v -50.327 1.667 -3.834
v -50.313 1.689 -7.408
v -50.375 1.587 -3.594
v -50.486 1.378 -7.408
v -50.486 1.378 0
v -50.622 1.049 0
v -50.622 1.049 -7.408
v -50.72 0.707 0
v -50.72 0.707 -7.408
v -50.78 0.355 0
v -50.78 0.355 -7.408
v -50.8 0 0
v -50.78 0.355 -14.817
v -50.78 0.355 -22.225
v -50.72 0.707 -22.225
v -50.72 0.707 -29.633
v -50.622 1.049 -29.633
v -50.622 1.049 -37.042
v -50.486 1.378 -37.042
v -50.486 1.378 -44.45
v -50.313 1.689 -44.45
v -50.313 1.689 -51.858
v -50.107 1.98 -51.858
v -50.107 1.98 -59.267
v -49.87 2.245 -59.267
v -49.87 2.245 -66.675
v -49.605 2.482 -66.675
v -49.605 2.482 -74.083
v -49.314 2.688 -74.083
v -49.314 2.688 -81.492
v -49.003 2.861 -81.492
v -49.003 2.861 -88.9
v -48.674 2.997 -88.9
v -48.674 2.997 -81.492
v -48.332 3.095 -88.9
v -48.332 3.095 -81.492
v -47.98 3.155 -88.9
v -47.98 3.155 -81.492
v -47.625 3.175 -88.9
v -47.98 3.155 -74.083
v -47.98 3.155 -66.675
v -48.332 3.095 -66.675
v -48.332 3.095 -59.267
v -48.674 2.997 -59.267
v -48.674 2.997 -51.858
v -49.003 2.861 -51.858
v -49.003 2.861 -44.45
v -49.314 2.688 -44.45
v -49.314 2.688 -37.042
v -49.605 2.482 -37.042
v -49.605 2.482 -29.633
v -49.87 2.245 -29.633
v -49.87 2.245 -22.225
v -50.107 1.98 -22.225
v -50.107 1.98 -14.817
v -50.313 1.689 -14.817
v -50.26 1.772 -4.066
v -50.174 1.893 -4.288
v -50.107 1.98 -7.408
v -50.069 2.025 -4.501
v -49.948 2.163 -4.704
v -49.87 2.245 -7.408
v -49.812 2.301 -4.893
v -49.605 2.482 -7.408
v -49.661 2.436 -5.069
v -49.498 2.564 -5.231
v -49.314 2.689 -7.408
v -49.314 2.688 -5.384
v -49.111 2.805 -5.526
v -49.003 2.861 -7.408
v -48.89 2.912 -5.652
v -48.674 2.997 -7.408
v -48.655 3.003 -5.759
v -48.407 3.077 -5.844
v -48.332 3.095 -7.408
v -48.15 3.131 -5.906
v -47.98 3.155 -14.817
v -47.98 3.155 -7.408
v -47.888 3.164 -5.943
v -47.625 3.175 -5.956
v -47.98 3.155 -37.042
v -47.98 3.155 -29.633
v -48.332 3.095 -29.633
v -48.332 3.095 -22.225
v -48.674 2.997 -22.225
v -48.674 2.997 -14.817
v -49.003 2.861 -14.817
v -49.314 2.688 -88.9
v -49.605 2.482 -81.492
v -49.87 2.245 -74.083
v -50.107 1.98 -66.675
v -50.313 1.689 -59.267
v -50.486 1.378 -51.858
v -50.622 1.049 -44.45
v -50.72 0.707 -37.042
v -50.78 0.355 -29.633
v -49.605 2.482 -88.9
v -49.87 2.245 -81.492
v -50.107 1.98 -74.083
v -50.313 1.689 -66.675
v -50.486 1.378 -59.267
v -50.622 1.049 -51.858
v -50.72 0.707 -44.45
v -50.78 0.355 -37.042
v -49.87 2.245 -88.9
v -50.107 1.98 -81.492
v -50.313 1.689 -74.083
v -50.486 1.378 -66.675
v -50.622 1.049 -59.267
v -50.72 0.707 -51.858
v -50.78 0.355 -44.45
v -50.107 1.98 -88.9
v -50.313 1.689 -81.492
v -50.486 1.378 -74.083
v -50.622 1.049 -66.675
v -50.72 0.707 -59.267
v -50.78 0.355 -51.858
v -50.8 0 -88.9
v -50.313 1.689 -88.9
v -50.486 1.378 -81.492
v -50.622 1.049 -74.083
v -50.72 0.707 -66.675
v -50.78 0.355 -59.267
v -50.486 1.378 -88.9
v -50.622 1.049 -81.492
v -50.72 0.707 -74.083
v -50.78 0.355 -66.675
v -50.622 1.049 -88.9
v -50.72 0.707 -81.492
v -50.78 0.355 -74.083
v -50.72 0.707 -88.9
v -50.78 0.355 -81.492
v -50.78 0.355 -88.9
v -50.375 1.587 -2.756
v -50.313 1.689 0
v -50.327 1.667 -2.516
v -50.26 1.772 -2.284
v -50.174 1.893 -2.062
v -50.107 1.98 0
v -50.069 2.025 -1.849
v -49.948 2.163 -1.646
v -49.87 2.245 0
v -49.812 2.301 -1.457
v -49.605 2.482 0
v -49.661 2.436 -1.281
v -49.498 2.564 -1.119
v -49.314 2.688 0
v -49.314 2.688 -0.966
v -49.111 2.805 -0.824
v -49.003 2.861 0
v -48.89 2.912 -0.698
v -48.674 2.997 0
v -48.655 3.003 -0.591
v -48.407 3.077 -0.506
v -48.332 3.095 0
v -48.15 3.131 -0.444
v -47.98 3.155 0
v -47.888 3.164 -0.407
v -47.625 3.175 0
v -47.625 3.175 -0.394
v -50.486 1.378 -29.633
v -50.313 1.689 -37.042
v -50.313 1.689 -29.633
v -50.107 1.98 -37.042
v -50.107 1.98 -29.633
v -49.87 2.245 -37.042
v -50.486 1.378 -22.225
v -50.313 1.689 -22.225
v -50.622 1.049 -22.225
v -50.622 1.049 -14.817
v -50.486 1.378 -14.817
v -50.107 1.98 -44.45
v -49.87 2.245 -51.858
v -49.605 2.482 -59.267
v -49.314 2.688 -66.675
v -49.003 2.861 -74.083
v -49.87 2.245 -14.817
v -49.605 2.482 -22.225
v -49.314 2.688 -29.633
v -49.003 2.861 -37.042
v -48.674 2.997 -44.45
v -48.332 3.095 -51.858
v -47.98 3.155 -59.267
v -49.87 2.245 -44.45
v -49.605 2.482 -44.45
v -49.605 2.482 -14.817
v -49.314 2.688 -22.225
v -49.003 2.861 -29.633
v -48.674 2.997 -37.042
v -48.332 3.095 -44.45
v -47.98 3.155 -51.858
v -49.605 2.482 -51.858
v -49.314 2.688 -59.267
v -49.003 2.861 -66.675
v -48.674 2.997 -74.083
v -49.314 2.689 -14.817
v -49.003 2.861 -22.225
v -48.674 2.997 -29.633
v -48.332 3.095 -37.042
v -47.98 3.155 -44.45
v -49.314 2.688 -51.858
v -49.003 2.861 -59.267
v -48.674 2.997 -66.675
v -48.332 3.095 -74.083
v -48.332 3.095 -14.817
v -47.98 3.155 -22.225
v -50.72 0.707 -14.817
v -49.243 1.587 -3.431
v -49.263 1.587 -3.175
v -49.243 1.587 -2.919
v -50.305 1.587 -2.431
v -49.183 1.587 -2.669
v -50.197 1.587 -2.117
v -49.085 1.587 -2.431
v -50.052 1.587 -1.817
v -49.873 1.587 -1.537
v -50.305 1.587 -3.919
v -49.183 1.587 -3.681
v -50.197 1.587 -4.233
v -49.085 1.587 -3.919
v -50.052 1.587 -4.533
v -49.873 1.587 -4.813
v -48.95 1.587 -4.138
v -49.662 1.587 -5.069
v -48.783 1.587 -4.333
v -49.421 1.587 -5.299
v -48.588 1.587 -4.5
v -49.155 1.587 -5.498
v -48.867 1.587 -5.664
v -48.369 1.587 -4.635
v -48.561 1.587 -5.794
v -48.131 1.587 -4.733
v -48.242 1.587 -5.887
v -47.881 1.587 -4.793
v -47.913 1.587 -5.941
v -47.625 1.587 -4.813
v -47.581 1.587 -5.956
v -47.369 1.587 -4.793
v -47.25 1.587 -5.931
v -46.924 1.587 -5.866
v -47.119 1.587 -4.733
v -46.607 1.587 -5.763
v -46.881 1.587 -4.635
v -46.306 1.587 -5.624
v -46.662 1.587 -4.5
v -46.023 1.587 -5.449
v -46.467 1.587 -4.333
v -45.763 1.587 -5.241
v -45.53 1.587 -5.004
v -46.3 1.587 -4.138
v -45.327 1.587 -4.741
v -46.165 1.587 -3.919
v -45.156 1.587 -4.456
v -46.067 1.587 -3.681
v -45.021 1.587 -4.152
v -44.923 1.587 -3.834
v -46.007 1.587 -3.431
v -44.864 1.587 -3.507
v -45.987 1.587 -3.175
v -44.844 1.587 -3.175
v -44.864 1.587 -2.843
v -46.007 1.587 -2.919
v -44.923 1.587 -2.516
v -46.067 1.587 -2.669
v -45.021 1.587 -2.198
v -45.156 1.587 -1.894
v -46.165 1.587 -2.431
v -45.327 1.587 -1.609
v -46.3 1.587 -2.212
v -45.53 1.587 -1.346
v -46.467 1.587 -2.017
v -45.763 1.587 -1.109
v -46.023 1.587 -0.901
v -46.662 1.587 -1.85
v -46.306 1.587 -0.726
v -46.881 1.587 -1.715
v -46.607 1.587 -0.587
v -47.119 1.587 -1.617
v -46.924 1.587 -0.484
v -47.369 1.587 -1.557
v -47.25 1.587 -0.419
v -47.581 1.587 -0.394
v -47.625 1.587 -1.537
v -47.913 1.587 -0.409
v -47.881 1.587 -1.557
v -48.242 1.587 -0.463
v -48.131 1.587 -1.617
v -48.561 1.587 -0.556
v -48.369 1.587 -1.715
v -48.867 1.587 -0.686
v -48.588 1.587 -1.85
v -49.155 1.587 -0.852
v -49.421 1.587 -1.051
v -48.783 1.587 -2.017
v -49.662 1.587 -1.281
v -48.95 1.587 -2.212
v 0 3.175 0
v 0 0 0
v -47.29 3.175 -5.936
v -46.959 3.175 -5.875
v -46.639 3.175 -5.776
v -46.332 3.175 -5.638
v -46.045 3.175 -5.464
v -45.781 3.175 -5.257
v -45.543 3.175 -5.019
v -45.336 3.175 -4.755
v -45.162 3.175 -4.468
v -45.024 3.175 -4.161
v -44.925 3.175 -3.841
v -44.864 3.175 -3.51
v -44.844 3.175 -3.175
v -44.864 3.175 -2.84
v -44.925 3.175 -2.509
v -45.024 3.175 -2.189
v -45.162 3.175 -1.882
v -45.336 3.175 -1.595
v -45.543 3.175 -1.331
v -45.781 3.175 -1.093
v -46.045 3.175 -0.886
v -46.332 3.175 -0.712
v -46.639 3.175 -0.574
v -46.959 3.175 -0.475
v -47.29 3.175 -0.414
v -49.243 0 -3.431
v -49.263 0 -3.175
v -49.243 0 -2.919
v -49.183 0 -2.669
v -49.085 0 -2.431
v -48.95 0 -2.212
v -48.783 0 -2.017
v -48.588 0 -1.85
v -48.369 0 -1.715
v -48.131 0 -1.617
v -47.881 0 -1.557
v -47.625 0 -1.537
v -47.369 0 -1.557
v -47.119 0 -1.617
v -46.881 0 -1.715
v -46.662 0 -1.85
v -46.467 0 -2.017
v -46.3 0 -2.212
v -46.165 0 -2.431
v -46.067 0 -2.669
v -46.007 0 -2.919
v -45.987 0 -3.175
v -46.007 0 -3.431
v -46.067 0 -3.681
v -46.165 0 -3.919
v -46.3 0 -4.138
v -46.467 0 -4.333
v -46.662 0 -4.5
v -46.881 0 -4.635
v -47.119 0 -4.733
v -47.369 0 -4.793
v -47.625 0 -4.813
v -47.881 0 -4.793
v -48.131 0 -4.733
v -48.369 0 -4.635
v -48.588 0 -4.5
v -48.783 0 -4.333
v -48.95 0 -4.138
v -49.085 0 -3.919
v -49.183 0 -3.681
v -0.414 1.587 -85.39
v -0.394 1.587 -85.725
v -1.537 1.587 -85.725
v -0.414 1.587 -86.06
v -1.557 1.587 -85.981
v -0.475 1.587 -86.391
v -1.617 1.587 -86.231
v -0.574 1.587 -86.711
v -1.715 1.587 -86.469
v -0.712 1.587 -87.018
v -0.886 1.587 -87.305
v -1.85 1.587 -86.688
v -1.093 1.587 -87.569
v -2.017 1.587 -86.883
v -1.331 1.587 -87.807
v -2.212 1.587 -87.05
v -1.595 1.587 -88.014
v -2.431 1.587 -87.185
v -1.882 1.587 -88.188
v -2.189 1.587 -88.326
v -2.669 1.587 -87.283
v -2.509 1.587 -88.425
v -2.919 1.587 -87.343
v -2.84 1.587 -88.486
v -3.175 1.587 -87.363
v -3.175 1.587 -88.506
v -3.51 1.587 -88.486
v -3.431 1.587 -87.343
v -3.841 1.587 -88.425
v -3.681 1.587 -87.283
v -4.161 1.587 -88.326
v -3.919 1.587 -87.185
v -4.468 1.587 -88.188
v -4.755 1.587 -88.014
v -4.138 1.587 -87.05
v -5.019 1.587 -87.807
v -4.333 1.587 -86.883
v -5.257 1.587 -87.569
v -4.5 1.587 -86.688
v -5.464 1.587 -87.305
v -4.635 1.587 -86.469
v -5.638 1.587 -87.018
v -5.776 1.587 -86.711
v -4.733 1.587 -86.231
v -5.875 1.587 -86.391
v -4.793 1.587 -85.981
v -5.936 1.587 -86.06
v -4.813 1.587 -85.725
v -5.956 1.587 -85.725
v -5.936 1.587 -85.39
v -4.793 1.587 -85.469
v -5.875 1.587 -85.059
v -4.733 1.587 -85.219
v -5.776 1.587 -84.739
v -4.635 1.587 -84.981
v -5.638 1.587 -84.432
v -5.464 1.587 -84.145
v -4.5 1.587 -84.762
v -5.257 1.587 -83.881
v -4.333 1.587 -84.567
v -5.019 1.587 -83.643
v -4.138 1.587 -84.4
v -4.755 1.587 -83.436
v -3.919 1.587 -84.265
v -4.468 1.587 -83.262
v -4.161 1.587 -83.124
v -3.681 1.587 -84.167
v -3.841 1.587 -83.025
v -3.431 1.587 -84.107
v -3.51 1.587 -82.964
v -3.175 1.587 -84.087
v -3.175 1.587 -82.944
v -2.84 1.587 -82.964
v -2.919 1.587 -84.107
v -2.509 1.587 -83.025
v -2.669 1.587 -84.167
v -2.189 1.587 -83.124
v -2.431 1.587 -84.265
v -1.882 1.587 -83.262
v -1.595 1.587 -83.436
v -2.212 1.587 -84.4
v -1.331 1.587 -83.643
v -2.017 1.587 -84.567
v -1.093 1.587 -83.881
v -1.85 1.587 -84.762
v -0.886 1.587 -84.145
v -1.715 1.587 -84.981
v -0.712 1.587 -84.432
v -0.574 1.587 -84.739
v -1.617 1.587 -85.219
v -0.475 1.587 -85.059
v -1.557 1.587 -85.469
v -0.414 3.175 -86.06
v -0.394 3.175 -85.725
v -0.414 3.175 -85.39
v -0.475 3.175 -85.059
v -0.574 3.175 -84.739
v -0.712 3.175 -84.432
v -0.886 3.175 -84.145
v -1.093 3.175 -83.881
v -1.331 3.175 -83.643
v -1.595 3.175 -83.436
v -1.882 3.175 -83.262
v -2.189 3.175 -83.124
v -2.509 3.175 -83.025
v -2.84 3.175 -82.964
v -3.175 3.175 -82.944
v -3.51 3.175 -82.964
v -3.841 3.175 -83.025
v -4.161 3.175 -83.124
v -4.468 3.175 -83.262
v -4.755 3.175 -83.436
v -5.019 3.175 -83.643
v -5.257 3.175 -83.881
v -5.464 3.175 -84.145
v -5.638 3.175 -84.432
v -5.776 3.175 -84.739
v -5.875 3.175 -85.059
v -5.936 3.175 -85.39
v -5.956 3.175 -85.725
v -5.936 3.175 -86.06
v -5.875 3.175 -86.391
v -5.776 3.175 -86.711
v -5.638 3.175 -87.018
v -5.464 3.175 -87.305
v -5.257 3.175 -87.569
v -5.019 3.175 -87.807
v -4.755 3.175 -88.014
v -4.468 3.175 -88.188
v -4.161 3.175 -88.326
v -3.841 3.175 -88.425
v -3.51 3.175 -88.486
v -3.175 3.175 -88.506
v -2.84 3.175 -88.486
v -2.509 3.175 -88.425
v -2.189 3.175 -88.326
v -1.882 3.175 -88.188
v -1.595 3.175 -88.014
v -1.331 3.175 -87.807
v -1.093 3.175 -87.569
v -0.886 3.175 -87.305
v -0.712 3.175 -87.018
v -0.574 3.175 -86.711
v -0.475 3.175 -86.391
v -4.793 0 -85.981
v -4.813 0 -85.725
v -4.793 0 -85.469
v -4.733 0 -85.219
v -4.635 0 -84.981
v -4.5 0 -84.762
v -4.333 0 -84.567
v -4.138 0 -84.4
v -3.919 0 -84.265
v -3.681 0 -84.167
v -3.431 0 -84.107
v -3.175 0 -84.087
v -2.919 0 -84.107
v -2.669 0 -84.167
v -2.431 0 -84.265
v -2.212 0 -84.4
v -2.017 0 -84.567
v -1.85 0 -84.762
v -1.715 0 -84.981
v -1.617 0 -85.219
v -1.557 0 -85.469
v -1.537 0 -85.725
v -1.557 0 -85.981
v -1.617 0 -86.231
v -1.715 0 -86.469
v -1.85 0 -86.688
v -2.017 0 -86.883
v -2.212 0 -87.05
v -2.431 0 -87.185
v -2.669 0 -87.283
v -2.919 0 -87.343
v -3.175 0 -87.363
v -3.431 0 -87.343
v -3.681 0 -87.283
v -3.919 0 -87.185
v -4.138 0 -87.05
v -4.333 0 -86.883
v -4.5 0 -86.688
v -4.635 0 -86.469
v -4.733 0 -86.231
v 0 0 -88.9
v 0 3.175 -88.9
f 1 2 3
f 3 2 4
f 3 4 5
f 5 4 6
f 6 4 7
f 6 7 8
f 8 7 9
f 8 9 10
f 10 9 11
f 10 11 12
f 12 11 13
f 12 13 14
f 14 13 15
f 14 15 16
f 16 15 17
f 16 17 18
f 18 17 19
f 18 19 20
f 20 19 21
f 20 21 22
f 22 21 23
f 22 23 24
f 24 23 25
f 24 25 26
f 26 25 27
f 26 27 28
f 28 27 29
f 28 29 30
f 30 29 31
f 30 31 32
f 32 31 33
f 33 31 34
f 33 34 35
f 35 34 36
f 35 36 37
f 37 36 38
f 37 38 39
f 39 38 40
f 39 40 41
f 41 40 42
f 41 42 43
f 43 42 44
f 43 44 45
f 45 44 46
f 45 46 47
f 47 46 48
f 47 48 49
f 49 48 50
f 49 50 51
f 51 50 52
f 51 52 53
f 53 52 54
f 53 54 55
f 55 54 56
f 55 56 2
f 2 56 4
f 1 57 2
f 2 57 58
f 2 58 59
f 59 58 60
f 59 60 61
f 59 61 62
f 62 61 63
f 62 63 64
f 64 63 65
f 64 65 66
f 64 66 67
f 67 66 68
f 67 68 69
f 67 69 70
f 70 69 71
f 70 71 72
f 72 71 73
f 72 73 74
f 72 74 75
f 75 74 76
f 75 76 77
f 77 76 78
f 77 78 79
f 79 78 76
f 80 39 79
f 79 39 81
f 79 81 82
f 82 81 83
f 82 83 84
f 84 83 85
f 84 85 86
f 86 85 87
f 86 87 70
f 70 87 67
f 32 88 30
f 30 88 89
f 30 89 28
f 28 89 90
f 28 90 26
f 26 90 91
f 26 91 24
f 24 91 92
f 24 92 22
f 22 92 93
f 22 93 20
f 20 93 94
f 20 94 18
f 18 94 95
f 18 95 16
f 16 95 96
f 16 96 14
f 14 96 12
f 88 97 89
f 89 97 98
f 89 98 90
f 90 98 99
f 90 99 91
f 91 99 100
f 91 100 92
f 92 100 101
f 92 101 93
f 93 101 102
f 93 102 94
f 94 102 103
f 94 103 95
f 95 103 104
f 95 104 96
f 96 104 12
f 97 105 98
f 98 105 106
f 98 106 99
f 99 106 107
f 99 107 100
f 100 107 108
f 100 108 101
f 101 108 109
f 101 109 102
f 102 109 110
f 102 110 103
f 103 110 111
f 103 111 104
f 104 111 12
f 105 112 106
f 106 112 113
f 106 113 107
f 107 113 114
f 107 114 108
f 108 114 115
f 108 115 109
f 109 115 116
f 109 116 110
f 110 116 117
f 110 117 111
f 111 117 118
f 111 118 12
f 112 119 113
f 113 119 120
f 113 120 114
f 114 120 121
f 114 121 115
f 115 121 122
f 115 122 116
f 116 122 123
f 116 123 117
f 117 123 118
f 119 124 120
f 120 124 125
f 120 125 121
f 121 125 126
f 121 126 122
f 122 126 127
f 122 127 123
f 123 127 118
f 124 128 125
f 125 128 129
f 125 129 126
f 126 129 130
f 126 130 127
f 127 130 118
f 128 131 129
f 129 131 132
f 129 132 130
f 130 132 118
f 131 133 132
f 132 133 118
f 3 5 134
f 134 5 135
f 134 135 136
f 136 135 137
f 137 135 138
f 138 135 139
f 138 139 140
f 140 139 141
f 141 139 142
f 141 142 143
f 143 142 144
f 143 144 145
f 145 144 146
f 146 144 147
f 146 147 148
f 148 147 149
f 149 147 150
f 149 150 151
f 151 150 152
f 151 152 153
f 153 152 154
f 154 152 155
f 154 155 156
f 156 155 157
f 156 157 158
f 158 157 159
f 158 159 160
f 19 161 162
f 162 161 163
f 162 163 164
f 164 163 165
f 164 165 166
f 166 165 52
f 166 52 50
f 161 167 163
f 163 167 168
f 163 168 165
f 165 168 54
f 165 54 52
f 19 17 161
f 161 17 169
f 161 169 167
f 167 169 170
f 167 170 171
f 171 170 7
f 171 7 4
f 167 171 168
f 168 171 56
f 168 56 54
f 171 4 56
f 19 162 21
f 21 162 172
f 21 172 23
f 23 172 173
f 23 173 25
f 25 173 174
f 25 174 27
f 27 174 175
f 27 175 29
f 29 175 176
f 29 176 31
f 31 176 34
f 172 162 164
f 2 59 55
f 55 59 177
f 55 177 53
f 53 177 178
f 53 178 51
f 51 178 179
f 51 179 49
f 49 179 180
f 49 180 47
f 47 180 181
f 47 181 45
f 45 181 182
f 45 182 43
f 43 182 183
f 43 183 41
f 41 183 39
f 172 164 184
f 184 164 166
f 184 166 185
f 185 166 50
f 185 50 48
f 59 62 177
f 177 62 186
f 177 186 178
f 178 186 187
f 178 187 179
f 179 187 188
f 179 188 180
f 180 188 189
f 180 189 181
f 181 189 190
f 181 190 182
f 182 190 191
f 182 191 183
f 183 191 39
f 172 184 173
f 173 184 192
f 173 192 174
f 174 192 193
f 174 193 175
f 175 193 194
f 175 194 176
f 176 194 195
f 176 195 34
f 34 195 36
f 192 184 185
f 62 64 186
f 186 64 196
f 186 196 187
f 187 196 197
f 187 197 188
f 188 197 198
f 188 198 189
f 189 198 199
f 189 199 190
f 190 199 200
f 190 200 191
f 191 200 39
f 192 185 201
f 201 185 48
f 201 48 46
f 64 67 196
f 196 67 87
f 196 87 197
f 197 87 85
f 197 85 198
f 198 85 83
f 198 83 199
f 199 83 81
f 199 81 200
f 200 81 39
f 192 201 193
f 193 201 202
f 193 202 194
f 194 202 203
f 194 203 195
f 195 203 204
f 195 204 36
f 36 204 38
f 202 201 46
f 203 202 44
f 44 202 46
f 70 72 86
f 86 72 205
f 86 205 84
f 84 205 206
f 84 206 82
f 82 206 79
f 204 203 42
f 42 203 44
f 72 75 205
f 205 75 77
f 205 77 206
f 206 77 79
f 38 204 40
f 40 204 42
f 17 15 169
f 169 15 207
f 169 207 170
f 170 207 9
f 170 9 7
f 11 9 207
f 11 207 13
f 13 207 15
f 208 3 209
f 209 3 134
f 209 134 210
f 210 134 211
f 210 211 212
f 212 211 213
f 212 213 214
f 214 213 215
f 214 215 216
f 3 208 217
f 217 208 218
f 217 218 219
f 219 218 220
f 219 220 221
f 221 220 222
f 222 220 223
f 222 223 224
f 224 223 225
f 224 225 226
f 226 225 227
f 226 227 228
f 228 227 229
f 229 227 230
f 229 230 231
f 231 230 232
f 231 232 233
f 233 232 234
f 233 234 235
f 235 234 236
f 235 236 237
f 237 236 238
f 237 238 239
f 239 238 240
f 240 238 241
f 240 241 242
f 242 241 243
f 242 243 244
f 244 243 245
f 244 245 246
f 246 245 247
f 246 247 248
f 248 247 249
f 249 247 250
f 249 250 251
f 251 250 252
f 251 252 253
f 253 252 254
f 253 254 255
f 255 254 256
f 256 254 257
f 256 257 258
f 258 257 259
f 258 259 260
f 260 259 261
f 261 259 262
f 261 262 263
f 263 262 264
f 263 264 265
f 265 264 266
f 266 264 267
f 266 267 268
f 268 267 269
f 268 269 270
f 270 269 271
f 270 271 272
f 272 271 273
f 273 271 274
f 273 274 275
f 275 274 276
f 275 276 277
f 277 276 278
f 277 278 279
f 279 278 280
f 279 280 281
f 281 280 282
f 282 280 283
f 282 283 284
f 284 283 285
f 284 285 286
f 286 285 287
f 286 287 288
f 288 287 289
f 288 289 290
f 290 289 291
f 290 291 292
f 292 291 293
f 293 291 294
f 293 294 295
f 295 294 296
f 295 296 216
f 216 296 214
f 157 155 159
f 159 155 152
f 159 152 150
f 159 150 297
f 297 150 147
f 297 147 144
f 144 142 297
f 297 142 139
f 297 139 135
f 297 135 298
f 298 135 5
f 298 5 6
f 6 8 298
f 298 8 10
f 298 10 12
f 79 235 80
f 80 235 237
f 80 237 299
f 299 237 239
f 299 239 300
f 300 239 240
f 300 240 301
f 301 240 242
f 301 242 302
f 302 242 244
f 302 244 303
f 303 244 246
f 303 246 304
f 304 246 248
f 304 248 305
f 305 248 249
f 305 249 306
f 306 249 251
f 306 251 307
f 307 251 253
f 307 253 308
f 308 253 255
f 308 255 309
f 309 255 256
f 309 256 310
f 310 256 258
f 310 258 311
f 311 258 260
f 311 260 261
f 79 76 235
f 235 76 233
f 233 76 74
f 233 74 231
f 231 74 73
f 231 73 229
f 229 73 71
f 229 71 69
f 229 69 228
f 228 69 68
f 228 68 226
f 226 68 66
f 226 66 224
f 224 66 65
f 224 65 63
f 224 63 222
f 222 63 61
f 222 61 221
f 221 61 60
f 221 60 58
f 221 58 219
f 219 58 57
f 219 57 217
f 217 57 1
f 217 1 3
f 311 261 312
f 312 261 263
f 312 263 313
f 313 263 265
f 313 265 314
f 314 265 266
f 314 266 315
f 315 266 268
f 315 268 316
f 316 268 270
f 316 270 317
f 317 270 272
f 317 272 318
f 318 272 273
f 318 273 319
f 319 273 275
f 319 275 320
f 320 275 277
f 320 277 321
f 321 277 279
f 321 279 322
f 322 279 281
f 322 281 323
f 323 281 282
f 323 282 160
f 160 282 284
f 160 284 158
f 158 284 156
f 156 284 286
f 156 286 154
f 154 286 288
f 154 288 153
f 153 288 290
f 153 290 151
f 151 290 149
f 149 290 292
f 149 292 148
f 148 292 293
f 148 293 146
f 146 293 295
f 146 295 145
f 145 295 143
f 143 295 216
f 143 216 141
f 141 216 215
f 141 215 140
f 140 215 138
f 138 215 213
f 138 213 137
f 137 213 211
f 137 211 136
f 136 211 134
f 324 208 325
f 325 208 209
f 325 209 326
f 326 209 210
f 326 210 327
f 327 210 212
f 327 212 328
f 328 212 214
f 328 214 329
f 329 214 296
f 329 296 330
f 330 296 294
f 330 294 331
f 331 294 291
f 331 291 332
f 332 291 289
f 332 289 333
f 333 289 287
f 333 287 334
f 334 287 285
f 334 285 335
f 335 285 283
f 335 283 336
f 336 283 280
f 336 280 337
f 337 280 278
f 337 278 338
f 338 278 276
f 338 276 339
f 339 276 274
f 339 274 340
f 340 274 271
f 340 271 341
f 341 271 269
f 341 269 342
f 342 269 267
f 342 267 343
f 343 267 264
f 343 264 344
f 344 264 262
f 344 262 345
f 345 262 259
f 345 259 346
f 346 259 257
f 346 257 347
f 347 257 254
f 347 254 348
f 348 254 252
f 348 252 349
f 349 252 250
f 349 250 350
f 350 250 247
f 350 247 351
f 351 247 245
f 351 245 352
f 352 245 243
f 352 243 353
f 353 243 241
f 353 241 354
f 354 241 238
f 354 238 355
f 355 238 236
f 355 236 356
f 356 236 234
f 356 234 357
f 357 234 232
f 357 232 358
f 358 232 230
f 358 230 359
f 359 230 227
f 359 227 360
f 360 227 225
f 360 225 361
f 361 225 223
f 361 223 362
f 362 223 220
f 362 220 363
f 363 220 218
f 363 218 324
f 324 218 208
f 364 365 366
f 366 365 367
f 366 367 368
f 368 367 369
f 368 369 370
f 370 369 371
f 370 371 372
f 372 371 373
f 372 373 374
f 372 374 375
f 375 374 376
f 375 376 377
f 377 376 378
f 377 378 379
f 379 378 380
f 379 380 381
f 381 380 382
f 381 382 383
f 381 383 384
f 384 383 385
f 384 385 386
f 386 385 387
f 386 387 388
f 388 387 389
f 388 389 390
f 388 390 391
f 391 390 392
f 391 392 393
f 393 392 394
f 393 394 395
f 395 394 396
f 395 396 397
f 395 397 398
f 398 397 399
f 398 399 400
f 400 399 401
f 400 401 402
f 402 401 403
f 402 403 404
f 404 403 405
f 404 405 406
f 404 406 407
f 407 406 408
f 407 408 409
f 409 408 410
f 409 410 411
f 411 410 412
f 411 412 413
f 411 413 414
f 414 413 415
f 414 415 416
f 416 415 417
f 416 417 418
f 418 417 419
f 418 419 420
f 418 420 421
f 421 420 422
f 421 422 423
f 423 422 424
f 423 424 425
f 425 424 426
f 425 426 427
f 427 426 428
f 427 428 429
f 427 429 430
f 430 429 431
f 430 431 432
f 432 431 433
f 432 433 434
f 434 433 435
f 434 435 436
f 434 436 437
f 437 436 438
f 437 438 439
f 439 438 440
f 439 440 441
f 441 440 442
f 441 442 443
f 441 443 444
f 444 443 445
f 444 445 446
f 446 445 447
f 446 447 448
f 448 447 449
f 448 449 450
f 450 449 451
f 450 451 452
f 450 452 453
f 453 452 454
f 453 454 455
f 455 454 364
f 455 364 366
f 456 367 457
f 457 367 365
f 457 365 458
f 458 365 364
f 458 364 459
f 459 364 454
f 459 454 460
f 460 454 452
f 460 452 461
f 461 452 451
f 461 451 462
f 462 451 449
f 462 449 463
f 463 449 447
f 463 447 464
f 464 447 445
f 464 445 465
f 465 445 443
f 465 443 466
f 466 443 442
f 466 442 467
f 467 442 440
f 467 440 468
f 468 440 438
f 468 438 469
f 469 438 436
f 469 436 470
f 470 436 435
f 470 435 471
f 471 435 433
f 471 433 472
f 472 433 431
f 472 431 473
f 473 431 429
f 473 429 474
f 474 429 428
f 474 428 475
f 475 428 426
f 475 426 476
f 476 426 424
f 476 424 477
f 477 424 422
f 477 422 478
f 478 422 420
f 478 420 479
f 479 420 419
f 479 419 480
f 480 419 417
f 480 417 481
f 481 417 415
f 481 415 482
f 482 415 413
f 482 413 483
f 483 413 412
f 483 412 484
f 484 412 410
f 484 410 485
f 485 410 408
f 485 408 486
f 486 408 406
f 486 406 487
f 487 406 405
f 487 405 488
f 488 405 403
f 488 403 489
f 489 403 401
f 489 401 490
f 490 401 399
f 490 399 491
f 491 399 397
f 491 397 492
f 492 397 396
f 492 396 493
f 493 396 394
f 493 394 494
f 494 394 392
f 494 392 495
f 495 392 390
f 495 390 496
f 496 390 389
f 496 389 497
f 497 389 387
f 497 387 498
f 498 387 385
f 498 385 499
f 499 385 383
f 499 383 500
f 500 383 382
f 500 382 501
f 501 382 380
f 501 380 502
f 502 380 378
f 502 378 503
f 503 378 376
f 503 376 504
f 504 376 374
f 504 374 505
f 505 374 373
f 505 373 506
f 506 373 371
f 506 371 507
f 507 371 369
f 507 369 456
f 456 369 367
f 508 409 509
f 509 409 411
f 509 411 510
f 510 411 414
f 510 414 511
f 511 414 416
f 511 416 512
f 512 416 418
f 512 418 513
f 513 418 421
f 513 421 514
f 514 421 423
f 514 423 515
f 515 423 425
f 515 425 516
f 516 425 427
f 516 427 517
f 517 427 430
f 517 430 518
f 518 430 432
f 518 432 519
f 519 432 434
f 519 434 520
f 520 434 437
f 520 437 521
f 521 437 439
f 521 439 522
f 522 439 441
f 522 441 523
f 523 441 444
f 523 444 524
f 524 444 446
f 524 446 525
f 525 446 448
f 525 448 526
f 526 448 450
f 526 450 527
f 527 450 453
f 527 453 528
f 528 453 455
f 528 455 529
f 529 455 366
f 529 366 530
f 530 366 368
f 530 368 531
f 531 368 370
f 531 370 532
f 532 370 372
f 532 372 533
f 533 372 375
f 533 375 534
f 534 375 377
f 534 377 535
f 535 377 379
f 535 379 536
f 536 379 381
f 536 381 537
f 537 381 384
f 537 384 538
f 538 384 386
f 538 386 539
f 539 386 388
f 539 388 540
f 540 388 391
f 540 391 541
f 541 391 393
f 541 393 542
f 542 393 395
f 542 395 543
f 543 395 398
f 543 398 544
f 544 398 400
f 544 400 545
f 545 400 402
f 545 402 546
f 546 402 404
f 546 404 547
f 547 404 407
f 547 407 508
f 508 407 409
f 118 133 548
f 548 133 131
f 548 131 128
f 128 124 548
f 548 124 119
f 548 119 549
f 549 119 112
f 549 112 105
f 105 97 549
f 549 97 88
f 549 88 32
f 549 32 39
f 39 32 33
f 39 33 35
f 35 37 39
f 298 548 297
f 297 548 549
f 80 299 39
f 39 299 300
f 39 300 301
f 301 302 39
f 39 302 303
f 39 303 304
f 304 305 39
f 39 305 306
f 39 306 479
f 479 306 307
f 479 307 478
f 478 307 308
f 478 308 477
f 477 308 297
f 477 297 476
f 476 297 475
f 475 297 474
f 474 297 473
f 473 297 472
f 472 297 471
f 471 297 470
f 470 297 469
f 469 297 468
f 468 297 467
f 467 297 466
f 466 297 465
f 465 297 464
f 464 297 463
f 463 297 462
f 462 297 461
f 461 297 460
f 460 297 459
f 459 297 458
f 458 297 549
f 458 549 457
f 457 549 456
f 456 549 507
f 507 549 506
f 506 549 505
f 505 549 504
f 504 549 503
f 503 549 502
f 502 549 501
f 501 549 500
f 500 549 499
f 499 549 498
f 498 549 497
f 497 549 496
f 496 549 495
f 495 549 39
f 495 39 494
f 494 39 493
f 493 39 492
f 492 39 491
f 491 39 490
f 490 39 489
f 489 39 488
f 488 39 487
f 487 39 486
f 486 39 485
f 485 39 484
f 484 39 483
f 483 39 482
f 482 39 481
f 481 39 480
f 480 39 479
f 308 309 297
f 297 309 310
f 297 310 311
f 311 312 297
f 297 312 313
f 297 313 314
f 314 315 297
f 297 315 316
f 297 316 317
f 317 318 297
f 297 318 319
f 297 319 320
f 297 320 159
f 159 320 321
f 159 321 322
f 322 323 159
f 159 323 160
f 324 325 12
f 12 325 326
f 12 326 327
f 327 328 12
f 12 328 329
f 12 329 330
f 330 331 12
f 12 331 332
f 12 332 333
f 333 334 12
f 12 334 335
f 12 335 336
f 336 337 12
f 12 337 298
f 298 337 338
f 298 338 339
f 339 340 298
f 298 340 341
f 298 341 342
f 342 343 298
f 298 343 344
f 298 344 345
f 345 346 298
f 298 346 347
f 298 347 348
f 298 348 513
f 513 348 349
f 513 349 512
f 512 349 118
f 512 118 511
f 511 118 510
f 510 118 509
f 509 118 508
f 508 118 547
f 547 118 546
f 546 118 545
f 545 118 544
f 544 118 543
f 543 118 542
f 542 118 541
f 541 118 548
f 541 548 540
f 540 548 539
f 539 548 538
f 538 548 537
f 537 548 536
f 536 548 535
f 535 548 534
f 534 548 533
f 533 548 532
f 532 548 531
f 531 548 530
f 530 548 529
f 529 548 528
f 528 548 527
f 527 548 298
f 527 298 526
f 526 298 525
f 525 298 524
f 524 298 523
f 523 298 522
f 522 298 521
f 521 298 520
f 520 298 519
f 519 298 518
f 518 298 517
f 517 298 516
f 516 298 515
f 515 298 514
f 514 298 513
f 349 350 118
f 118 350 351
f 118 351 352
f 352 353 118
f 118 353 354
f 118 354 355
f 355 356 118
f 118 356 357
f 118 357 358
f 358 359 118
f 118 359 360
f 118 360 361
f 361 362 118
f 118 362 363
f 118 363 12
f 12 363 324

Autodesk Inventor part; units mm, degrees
ref_plane "YZ Plane" through (0, 0, 0) normal (1, 0, 0) x (0, 1, 0)
ref_plane "XZ Plane" through (0, 0, 0) normal (0, 1, 0) x (-1, 0, 0)
ref_plane "XY Plane" through (0, 0, 0) normal (0, 0, 1) x (1, 0, 0)
sketch "Sketch1" plane through (0, 0, 0) normal (0, 1, 0) x (-1, 0, 0)
  line L0 (0, 0) -> (50.8, 0)
  line L1 (50.8, 0) -> (50.8, -88.9)
  line L2 (50.8, -88.9) -> (0, -88.9)
  line L3 (0, -88.9) -> (0, 0)
  line L4 (50.8, 0) -> (47.625, 0)
  line L5 (47.625, 0) -> (47.625, -3.175)
  line L6 (47.625, -3.175) -> (50.8, -3.175)
  line L7 (50.8, -3.175) -> (50.8, 0)
  line L8 (0, -88.9) -> (3.175, -88.9)
  line L9 (3.175, -88.9) -> (3.175, -85.725)
  line L10 (3.175, -85.725) -> (0, -85.725)
  line L11 (0, -85.725) -> (0, -88.9)
  dimension "d0" = 50.8
  dimension "d1" = 88.9
  dimension "d2" = 3.175
  dimension "d3" = 3.175
  dimension "d4" = 3.175
  dimension "d5" = 3.175
extrude "Extrusion1" add sketch "Sketch1" along normal blind 3.175
sketch "Sketch2" plane through (0, 3.175, 0) normal (0, 1, 0) x (1, 0, 0)
  line L0 (-50.8, 0) -> (0, 0) projected
  line L1 (-50.8, 0) -> (-47.625, 0)
  line L2 (-47.625, 0) -> (-47.625, 3.175)
  line L3 (-47.625, 3.175) -> (-50.8, 3.175)
  line L4 (-50.8, 3.175) -> (-50.8, 0)
  line L5 (0, 88.9) -> (-50.8, 88.9) projected
  line L6 (0, 88.9) -> (-3.175, 88.9)
  line L7 (-3.175, 88.9) -> (-3.175, 85.725)
  line L8 (-3.175, 85.725) -> (0, 85.725)
  line L9 (0, 85.725) -> (0, 88.9)
  dimension "d15" = 3.175
  dimension "d16" = 3.175
  dimension "d17" = 3.175
  dimension "d18" = 3.175
hole "Hole2" at (-47.625, 3.175, -3.175) at (-3.175, 3.175, -85.725) direction (0, -1, 0) diameter 3.2766 depth 7.9375 counterbore diameter 5.5626 counterbore depth 1.5875 clearance for "Socket Head Cap Screw" size "#4" standard "Ansi Unified Screw Threads"
fillet "Fillet1" radius 3.175 1 edges at (-50.8, 3.175, -44.45)
properties part number "DualSensorReadout - Lid"
